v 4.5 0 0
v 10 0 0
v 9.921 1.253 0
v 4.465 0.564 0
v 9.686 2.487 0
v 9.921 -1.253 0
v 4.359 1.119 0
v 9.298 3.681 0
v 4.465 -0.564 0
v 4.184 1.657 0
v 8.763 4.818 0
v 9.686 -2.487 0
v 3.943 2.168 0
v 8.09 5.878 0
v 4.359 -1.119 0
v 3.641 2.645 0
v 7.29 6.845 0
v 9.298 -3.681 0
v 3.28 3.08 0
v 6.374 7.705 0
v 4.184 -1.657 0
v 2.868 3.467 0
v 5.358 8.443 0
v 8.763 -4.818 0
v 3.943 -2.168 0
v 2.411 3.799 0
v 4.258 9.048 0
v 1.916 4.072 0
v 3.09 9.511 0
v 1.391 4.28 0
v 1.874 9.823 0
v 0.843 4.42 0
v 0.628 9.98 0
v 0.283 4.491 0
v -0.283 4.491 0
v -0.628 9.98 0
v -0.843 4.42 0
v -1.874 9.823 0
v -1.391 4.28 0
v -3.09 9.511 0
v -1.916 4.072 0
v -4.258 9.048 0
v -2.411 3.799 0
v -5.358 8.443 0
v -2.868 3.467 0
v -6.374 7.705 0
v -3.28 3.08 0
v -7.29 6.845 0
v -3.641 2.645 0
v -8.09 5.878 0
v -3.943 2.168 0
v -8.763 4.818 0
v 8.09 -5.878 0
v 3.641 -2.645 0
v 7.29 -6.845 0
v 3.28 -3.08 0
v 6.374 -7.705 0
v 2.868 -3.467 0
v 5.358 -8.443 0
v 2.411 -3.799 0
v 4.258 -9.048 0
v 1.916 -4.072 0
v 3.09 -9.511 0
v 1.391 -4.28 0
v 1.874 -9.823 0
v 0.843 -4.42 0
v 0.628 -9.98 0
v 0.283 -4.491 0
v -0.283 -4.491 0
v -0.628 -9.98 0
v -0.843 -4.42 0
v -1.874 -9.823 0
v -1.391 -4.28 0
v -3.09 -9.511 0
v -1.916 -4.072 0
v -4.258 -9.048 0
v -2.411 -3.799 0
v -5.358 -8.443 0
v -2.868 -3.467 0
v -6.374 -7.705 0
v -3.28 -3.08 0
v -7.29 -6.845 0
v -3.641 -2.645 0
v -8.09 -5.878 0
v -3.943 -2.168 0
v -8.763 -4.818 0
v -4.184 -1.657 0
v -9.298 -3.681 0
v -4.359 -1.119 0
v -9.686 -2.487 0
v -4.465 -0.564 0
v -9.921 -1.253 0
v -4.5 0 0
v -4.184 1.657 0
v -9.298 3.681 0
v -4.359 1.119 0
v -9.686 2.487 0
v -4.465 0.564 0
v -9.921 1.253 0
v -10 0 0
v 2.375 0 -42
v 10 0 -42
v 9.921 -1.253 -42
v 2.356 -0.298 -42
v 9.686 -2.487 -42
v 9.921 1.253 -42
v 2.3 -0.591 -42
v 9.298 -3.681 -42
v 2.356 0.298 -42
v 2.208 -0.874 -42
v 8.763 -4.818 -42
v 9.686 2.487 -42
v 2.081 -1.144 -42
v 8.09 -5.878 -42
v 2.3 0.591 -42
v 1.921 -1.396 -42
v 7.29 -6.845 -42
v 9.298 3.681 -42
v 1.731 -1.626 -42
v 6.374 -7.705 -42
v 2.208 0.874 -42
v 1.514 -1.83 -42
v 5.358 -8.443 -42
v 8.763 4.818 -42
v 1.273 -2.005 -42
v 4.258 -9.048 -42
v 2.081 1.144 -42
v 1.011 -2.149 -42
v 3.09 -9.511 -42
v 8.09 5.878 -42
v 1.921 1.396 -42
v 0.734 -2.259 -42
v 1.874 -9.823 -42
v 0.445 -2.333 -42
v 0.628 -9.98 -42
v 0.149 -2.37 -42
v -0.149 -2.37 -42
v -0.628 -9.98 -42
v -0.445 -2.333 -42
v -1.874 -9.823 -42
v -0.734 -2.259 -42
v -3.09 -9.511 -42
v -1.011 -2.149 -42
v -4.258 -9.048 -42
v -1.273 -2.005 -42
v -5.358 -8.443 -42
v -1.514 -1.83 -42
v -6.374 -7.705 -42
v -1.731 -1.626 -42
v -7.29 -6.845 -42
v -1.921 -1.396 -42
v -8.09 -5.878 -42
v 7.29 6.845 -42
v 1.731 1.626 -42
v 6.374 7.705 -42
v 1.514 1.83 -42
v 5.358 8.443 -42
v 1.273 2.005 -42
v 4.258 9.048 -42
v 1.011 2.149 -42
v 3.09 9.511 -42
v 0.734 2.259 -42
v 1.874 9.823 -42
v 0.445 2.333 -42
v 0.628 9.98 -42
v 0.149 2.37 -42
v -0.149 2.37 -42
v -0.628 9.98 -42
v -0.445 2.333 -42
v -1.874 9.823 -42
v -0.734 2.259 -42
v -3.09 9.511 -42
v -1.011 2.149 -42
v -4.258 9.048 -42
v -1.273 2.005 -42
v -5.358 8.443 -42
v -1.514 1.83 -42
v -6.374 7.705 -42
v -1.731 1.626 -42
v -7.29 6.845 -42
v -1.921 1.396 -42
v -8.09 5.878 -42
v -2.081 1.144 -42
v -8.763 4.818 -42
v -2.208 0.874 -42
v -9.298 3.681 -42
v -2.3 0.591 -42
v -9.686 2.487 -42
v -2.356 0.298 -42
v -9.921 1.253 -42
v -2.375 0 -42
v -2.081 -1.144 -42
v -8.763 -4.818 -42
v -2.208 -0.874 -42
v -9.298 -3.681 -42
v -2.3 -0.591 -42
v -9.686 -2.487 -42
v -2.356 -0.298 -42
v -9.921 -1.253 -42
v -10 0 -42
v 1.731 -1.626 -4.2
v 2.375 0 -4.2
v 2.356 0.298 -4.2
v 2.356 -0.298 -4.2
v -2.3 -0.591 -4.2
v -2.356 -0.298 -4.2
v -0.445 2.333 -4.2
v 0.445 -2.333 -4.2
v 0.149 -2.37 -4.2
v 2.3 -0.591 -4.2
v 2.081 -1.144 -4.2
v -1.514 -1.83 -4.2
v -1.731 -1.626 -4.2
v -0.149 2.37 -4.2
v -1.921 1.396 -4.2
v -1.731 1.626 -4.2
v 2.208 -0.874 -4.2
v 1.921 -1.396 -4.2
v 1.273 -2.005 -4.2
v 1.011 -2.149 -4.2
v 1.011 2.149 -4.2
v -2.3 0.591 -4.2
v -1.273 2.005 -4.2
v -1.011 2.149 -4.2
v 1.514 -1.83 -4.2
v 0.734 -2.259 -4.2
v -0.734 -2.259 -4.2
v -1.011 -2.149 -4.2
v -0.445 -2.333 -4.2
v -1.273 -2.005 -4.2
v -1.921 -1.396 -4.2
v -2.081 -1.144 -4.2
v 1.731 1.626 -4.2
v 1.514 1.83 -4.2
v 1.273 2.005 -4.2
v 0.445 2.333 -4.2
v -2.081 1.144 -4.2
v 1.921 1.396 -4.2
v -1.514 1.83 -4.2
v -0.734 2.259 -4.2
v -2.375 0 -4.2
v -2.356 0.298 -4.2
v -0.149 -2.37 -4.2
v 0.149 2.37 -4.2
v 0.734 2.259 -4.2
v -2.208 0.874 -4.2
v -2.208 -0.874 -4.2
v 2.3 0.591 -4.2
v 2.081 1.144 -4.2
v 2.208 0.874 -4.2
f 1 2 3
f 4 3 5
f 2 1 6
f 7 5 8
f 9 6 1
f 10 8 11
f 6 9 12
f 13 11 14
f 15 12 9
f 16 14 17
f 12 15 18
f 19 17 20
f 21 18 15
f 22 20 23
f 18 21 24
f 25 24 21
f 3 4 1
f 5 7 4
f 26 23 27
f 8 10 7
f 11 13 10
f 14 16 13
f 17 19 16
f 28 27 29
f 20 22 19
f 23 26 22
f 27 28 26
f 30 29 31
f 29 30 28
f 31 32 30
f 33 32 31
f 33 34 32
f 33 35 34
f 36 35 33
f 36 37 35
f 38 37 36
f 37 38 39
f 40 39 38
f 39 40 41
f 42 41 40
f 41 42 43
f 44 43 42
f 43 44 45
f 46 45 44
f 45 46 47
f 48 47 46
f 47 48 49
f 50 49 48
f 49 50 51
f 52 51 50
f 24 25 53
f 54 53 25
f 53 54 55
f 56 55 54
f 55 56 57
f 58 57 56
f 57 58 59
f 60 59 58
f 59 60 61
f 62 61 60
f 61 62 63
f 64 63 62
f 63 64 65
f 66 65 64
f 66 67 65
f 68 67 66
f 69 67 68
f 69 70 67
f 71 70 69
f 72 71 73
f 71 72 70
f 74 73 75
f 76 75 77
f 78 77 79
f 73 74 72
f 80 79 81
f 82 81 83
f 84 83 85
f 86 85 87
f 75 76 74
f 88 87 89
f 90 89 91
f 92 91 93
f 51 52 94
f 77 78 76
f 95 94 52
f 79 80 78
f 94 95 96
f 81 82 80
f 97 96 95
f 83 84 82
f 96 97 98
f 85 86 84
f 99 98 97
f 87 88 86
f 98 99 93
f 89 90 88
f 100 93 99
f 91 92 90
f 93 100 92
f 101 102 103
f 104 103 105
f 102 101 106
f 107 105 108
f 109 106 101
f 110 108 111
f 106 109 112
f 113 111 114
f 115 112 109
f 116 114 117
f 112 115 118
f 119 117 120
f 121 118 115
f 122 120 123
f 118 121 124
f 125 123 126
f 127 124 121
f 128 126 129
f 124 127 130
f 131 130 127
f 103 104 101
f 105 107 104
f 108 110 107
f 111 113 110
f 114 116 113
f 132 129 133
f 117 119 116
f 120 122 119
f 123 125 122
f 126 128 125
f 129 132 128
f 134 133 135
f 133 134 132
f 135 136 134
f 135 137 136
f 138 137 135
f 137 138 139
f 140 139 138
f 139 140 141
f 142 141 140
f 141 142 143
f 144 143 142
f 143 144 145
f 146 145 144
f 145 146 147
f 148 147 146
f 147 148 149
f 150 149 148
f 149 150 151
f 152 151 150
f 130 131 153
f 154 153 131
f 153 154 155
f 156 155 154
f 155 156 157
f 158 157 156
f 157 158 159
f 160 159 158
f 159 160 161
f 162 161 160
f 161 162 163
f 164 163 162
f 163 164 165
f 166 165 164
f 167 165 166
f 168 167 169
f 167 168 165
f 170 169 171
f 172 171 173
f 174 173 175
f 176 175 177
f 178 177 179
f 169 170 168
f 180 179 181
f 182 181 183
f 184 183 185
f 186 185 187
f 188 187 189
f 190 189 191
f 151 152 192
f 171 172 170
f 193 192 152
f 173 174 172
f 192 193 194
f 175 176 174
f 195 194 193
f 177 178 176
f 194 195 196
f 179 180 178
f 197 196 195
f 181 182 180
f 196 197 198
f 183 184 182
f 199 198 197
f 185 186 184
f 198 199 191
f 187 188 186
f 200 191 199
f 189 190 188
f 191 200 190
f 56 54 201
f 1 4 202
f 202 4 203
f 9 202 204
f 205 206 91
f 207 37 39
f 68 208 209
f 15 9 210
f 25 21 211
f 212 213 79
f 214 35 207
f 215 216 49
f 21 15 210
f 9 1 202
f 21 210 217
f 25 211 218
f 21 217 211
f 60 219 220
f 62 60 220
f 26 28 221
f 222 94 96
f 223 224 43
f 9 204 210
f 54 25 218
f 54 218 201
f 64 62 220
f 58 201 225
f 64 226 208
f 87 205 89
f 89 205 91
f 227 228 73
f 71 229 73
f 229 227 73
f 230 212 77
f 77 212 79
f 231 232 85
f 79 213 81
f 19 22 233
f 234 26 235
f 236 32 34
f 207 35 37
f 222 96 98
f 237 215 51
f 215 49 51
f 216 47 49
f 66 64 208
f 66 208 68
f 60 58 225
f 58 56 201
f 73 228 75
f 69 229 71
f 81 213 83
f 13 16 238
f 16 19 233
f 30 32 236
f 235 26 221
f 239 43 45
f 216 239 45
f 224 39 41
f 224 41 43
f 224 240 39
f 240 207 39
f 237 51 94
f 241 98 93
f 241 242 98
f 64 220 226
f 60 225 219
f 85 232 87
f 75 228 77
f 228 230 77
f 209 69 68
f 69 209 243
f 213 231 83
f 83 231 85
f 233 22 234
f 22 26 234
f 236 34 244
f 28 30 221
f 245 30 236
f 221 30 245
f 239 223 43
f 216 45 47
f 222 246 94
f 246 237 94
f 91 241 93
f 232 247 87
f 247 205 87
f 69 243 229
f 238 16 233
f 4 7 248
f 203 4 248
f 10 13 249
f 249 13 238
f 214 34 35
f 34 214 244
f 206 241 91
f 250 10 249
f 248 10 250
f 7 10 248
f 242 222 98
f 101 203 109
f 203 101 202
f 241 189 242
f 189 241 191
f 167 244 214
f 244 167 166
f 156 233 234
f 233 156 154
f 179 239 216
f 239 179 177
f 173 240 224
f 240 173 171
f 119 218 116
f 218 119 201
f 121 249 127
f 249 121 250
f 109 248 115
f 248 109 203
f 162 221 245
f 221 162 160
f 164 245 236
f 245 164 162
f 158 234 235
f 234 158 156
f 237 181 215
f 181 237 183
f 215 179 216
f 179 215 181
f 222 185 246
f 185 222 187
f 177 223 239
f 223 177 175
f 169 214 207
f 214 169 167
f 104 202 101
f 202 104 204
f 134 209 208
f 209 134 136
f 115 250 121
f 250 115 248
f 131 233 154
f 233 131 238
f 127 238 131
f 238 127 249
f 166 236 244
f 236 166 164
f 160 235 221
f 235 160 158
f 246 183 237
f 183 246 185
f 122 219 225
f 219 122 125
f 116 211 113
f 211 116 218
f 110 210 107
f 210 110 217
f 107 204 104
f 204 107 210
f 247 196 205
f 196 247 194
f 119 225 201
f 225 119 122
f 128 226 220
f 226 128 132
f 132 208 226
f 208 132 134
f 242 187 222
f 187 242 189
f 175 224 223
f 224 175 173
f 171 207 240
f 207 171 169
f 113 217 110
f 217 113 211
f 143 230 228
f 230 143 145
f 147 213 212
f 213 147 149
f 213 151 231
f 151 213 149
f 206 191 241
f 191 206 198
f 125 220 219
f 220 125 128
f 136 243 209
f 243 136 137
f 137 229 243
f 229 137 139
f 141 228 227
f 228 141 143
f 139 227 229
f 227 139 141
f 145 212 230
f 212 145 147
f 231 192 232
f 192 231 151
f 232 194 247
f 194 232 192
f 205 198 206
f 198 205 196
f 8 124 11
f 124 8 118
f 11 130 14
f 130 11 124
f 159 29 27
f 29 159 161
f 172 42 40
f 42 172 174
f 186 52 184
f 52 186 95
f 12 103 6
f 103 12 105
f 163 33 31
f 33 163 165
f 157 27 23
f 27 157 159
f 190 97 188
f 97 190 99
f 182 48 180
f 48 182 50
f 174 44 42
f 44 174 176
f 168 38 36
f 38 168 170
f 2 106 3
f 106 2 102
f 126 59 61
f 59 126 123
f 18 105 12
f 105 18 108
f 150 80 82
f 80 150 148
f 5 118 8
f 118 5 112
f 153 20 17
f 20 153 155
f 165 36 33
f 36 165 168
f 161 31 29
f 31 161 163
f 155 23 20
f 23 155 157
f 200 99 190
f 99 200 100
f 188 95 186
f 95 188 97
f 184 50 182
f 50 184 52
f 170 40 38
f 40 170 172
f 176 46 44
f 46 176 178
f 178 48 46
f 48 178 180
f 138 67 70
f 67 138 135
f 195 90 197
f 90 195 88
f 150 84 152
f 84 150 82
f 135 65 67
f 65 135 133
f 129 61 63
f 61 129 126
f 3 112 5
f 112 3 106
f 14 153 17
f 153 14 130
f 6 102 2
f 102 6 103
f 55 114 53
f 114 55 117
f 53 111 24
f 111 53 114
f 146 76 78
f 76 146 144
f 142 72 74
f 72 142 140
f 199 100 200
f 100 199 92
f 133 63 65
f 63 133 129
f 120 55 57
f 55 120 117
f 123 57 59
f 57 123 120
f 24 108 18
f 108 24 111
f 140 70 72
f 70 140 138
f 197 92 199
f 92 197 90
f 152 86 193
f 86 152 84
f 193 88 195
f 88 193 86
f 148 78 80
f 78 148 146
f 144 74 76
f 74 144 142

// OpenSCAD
$fn = 50;


difference() {
	union() {
		translate(v = [0, 0, -42.0000000000]) {
			cylinder(h = 42, r = 10.0000000000);
		}
		cylinder(h = 0, r = 16.0000000000);
	}
	union() {
		translate(v = [0, 0, 0]) {
			rotate(a = [0, 0, 0]) {
				difference() {
					union() {
						#translate(v = [0, 0, -42.0000000000]) {
							cylinder(h = 42, r = 2.2500000000);
						}
						#translate(v = [0, 0, -4.2000000000]) {
							cylinder(h = 4.2000000000, r1 = 2.3750000000, r2 = 4.5000000000);
						}
						#translate(v = [0, 0, -42.0000000000]) {
							cylinder(h = 42, r = 2.3750000000);
						}
						#translate(v = [0, 0, -42.0000000000]) {
							cylinder(h = 42, r = 2.2500000000);
						}
					}
					union();
				}
			}
		}
	}
}
